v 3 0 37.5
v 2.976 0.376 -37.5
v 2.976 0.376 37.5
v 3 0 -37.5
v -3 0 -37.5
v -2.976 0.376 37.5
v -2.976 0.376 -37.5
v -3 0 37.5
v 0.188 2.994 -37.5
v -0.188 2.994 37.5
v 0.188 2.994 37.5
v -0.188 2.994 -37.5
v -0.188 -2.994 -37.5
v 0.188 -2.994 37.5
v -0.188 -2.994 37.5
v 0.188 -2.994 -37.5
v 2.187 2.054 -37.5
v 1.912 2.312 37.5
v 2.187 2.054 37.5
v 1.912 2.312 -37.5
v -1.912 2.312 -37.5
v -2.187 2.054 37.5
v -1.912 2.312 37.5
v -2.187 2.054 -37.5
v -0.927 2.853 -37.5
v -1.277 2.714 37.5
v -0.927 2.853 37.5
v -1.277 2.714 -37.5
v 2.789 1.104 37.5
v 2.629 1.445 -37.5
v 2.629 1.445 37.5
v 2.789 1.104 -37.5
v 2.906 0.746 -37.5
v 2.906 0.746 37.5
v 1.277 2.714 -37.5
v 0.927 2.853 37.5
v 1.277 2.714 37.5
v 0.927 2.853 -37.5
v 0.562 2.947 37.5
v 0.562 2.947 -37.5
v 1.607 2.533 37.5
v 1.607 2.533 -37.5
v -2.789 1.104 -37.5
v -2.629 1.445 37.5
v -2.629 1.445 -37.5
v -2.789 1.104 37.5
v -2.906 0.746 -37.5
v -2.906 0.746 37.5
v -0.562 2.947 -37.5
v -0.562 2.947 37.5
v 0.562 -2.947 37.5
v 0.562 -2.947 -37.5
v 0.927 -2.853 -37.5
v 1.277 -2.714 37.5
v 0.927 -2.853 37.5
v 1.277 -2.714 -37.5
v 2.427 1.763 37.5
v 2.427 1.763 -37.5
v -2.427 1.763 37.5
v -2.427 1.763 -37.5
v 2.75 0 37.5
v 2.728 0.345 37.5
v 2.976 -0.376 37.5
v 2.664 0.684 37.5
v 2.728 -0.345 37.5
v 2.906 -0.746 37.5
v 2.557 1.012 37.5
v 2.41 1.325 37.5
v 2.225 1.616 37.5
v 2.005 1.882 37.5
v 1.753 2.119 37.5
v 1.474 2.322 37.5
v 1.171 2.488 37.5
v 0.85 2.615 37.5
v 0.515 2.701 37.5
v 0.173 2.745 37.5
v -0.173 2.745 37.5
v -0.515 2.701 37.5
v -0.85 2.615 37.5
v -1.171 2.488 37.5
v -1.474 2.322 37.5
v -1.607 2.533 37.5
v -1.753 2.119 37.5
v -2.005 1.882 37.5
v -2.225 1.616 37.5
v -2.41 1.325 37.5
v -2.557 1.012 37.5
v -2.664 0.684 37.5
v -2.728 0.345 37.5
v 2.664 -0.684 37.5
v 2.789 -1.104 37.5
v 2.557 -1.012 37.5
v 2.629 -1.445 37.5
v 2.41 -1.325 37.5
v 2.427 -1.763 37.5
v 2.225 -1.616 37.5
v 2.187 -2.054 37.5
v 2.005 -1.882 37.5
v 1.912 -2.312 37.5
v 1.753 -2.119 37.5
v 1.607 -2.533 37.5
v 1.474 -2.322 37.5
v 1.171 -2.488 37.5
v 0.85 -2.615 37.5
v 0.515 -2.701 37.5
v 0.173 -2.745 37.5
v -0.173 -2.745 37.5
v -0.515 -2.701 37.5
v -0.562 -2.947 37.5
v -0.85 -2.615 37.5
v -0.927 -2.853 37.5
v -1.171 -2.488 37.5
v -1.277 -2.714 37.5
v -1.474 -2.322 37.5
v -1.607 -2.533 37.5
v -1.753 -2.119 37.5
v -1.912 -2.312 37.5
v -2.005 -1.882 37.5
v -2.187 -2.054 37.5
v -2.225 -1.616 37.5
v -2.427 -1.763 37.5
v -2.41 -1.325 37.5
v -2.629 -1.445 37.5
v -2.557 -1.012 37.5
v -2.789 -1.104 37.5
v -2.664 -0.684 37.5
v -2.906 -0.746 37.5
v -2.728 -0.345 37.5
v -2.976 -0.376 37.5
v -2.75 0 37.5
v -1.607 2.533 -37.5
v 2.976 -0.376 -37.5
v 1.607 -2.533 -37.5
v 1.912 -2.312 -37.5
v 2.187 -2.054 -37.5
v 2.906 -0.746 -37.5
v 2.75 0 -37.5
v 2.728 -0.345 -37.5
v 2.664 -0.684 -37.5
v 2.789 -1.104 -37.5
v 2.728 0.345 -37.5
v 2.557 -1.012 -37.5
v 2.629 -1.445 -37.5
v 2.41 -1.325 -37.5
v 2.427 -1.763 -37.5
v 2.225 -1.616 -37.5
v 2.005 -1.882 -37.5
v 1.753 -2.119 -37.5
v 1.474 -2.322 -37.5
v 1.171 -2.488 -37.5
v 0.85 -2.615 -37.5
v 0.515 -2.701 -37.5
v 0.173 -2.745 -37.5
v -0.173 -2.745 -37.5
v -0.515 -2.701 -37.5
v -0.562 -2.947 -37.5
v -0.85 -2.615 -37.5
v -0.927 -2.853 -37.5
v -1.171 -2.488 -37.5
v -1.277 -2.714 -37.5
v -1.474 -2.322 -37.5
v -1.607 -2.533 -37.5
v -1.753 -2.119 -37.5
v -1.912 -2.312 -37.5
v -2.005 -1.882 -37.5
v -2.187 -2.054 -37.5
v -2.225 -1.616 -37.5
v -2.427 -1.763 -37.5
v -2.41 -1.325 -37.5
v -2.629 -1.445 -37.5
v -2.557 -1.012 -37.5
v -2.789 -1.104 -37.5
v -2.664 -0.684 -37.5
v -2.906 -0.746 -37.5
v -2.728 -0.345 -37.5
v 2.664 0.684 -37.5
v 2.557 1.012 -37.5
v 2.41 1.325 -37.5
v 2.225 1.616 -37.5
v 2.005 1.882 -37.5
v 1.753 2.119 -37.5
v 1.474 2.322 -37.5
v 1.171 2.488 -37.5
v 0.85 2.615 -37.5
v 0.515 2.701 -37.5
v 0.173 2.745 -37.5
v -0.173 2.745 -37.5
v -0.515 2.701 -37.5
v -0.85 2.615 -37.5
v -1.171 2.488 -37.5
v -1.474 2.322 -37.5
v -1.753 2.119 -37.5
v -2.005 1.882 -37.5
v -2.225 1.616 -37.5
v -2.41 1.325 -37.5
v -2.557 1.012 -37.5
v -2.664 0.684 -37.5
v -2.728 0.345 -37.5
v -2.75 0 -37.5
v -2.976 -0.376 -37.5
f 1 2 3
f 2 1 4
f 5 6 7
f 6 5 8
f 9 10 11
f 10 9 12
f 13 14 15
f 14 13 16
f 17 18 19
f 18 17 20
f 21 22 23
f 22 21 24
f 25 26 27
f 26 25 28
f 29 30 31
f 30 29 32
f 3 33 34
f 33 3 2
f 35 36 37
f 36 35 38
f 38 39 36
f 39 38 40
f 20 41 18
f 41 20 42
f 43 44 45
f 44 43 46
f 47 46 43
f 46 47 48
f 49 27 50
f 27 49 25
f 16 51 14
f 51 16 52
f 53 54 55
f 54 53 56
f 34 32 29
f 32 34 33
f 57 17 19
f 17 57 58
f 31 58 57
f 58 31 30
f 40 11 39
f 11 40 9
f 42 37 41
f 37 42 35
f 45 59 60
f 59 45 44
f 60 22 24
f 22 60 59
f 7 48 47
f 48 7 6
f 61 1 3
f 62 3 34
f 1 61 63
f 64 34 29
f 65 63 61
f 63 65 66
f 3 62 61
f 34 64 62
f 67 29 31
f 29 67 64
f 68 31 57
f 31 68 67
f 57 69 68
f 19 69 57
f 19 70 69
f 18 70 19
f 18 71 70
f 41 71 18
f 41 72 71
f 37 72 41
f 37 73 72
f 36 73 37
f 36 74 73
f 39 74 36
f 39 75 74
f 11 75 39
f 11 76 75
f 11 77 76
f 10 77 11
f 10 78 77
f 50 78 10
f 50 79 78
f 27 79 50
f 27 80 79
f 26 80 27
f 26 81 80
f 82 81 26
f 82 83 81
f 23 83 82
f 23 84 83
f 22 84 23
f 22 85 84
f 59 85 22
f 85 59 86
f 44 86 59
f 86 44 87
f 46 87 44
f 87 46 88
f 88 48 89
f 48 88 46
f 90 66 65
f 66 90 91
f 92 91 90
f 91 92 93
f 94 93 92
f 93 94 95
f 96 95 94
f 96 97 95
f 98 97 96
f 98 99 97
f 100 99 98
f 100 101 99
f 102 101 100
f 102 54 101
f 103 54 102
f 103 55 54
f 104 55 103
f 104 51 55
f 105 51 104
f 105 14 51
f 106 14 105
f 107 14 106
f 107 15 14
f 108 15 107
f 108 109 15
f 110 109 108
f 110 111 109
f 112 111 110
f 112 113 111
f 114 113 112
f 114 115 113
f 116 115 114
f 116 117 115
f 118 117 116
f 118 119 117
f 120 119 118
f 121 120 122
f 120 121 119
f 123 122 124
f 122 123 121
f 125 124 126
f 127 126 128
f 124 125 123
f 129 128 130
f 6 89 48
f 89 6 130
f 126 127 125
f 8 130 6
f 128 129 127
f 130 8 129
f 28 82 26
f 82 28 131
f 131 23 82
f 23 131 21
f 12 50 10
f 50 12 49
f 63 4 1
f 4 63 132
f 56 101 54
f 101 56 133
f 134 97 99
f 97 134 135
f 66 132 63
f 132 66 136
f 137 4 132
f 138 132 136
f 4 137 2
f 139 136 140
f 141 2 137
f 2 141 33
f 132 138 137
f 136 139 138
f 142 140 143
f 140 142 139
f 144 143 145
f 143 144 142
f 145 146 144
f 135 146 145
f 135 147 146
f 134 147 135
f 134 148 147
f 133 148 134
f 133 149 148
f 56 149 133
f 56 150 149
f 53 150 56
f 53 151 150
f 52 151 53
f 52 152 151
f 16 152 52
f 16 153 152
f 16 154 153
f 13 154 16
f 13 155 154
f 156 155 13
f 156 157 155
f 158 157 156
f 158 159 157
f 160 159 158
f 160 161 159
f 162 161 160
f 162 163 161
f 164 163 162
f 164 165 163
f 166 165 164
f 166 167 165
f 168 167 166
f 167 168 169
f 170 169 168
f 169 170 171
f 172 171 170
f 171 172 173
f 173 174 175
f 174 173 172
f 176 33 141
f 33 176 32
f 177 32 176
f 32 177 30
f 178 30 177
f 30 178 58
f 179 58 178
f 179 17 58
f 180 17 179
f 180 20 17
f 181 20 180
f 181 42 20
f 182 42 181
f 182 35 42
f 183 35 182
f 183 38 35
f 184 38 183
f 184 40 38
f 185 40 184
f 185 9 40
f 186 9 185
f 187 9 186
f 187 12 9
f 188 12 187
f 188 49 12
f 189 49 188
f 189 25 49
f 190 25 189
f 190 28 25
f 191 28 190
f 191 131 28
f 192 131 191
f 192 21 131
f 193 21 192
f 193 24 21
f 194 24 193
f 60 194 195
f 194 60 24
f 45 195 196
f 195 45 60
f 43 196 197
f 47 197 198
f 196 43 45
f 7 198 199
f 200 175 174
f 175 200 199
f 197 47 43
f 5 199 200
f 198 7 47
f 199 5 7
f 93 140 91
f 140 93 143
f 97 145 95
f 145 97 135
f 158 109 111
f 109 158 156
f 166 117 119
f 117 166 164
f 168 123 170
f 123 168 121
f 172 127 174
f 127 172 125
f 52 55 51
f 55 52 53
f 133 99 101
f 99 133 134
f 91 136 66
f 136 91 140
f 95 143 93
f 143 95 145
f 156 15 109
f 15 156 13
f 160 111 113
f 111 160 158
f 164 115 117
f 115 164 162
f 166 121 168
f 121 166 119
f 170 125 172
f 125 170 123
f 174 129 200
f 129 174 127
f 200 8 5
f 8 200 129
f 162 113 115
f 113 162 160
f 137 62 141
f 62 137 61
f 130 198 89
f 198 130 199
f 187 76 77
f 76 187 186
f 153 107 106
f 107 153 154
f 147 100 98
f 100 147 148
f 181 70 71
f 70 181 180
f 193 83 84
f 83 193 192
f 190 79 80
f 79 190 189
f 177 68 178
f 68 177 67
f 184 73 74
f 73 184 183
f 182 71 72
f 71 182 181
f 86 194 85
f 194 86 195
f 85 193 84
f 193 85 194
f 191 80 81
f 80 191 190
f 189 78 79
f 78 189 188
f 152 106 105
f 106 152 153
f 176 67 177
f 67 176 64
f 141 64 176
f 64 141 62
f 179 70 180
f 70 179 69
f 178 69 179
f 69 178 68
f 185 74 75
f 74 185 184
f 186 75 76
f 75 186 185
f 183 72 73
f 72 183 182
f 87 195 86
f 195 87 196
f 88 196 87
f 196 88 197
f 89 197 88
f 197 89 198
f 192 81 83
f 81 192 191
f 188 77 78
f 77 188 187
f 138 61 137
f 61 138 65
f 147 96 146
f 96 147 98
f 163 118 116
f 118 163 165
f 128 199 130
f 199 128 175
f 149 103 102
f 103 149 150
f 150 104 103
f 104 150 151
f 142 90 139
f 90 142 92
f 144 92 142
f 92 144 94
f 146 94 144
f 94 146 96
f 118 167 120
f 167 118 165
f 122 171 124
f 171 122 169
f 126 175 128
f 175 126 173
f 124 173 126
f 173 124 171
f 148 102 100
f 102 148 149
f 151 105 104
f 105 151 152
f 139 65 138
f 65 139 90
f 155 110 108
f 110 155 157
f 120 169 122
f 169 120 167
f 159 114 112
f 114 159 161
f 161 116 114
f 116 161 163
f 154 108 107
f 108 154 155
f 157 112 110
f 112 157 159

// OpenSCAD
$fn = 50;


difference() {
	union() {
		translate(v = [0, 0, -37.5000000000]) {
			cylinder(h = 75, r = 3.0000000000);
		}
	}
	union() {
		translate(v = [0, 0, -100.0000000000]) {
			cylinder(h = 200, r = 2.7500000000);
		}
	}
}
